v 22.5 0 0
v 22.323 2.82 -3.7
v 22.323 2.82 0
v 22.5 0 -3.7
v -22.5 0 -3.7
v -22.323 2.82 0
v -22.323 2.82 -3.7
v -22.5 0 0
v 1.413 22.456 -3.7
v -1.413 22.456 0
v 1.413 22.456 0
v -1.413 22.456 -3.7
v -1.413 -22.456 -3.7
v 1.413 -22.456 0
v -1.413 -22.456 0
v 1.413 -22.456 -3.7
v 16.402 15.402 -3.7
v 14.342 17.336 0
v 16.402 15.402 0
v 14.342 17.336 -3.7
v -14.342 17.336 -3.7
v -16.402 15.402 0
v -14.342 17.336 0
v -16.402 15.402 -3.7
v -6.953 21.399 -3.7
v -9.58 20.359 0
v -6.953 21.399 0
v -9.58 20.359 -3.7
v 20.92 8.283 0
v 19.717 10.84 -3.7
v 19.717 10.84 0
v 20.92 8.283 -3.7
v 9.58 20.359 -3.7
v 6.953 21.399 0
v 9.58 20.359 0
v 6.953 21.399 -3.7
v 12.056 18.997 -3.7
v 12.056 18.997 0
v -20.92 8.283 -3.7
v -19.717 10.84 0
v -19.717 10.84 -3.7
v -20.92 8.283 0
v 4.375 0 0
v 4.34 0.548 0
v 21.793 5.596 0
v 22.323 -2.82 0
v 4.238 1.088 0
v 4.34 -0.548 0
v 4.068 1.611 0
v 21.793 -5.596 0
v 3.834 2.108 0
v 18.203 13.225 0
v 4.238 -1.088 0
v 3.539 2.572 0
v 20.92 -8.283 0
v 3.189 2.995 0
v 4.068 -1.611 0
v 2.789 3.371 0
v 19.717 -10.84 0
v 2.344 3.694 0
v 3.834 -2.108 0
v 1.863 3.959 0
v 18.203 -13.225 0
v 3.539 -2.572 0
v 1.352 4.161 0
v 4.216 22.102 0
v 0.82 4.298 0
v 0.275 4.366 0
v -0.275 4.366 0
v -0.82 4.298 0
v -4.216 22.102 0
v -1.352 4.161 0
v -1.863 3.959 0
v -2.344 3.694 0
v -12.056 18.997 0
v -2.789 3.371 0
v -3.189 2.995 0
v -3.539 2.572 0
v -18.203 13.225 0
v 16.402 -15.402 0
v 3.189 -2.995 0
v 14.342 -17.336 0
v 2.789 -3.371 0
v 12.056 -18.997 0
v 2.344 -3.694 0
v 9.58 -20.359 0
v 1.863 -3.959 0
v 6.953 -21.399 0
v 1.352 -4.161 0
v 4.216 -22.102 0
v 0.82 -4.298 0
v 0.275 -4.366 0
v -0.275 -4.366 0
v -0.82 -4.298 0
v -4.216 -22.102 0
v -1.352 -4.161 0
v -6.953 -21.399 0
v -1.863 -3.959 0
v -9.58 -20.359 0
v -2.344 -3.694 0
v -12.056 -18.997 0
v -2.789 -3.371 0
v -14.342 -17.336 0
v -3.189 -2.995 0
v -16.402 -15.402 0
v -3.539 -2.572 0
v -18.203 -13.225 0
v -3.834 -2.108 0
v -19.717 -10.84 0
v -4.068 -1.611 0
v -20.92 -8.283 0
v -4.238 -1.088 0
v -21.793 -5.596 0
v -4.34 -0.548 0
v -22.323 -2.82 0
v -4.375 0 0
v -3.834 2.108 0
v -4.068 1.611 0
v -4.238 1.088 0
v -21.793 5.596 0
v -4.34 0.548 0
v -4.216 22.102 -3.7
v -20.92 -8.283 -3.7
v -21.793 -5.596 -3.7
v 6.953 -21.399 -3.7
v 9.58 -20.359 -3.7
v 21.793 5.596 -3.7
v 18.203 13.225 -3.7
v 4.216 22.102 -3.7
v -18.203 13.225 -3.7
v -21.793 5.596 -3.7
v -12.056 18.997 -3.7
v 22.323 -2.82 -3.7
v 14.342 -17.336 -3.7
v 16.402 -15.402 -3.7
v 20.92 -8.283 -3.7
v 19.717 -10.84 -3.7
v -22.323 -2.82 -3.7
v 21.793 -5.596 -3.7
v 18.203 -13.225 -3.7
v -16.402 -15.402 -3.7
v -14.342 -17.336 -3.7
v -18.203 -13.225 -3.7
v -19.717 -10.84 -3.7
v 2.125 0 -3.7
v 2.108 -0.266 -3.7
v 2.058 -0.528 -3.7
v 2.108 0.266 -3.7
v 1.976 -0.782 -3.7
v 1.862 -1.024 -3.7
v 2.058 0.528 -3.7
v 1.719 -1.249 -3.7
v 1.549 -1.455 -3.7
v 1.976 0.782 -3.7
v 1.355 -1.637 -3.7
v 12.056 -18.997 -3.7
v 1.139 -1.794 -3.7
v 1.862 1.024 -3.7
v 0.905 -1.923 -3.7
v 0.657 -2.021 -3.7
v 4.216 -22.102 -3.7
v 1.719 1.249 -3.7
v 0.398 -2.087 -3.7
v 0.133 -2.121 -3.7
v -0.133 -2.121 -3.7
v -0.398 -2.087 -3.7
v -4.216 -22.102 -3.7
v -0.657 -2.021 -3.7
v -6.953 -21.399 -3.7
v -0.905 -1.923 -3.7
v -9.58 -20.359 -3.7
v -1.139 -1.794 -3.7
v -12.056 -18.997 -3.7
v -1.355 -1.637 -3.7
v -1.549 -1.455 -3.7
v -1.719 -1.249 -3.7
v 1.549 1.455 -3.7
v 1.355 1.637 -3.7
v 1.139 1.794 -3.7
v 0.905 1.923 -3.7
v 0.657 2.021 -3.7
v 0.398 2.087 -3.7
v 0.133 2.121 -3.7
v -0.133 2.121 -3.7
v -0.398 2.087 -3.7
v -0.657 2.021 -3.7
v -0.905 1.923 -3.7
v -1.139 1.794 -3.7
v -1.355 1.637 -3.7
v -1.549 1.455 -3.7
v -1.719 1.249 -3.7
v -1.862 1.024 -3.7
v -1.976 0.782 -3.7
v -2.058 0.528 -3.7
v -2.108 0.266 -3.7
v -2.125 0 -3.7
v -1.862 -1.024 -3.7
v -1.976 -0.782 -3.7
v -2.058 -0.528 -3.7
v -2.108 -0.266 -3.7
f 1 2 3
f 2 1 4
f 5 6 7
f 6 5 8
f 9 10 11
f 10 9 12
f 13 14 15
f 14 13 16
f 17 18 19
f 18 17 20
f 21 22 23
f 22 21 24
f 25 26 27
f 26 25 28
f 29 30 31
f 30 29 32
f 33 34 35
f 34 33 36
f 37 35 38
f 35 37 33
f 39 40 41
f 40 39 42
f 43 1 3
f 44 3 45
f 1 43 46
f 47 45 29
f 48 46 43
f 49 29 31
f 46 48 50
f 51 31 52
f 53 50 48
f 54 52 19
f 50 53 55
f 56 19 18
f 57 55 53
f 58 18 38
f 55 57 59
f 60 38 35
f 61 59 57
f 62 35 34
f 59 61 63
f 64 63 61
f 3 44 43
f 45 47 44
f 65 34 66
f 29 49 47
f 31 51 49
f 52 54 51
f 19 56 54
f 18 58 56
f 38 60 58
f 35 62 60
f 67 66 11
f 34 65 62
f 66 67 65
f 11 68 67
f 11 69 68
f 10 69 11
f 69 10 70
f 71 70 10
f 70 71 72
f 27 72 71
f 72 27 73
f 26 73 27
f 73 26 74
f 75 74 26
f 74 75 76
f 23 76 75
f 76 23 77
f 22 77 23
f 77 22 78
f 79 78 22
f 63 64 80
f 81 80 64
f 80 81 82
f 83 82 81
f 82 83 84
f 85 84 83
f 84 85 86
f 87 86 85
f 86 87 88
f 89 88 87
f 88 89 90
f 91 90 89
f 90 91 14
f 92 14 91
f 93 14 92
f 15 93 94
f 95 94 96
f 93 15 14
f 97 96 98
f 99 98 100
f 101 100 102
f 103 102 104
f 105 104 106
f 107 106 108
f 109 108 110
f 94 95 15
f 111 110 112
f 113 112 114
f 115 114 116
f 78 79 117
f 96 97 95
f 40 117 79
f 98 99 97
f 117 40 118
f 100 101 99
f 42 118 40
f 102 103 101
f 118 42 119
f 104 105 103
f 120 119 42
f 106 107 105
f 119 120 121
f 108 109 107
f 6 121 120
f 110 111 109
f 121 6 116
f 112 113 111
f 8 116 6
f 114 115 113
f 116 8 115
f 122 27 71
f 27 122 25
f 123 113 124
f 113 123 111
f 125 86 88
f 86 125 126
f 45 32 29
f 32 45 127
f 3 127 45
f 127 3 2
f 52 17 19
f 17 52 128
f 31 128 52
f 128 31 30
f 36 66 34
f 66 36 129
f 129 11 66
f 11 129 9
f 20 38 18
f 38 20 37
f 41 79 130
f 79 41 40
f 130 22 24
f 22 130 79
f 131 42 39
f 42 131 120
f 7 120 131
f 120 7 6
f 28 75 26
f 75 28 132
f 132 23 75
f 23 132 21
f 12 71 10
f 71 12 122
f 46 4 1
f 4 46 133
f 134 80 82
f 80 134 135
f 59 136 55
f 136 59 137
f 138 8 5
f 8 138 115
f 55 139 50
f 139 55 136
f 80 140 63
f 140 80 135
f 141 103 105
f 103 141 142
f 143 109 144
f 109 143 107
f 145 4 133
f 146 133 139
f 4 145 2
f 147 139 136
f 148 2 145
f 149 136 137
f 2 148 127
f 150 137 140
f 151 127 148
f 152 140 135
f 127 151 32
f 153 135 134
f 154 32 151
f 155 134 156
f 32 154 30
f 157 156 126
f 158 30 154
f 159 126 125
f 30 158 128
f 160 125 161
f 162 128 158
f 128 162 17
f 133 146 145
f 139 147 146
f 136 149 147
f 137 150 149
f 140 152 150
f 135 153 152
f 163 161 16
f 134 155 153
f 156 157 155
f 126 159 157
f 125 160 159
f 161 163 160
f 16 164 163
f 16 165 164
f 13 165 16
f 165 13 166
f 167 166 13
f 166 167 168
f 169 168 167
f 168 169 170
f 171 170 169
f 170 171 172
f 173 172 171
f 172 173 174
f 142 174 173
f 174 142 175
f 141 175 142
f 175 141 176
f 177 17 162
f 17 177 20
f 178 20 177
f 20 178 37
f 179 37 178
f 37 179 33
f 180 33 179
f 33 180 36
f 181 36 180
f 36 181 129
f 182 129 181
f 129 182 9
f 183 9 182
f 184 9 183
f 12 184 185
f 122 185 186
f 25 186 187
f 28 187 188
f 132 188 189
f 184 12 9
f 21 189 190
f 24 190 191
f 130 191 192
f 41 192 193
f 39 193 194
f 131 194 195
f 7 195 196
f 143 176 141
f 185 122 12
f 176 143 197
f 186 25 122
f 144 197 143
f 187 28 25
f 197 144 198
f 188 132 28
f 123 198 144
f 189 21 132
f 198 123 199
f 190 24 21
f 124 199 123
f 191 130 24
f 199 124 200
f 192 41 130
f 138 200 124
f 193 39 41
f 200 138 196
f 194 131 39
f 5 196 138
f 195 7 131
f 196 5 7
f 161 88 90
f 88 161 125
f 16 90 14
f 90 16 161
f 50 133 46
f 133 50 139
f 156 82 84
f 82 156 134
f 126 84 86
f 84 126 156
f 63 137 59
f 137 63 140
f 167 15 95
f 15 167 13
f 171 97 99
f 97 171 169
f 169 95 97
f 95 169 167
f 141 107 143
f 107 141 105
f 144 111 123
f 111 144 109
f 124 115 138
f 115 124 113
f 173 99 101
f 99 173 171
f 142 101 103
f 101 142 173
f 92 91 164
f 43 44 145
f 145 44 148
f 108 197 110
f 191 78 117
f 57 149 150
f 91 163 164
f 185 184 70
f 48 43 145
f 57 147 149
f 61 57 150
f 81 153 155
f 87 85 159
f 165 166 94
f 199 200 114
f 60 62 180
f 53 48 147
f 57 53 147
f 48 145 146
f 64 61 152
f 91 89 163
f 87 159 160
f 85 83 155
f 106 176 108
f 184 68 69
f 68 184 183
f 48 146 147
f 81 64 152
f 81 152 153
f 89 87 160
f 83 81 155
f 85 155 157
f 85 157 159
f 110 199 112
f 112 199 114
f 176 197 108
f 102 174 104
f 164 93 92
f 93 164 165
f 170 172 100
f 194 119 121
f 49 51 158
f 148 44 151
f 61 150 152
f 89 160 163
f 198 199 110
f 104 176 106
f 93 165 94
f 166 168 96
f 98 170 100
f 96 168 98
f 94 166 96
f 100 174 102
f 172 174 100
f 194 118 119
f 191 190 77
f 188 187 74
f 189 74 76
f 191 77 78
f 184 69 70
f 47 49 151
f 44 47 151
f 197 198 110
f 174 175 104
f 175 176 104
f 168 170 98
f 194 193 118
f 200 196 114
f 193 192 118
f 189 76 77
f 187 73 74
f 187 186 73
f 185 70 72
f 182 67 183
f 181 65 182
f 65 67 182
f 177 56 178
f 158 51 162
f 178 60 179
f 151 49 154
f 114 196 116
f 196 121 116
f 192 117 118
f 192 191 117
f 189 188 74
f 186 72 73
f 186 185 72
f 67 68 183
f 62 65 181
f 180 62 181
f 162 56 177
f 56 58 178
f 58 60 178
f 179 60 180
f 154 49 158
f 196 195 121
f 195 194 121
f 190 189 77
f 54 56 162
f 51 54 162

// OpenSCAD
$fn = 50;


difference() {
	union() {
		translate(v = [0, 0, -3.7000000000]) {
			cylinder(h = 3.7000000000, r = 22.5000000000);
		}
		translate(v = [0, 0, -3.7000000000]) {
			cylinder(h = 3.7000000000, r = 2.8750000000);
		}
	}
	union() {
		translate(v = [0, 0, 0]) {
			rotate(a = [0, 0, 0]) {
				difference() {
					union() {
						translate(v = [0, 0, -3.7000000000]) {
							cylinder(h = 3.7000000000, r = 2.0000000000);
						}
						translate(v = [0, 0, -3.7000000000]) {
							cylinder(h = 3.7000000000, r1 = 2.1250000000, r2 = 4.3750000000);
						}
						translate(v = [0, 0, -3.7000000000]) {
							cylinder(h = 3.7000000000, r = 2.1250000000);
						}
						translate(v = [0, 0, -3.7000000000]) {
							cylinder(h = 3.7000000000, r = 2.0000000000);
						}
					}
					union();
				}
			}
		}
	}
}
